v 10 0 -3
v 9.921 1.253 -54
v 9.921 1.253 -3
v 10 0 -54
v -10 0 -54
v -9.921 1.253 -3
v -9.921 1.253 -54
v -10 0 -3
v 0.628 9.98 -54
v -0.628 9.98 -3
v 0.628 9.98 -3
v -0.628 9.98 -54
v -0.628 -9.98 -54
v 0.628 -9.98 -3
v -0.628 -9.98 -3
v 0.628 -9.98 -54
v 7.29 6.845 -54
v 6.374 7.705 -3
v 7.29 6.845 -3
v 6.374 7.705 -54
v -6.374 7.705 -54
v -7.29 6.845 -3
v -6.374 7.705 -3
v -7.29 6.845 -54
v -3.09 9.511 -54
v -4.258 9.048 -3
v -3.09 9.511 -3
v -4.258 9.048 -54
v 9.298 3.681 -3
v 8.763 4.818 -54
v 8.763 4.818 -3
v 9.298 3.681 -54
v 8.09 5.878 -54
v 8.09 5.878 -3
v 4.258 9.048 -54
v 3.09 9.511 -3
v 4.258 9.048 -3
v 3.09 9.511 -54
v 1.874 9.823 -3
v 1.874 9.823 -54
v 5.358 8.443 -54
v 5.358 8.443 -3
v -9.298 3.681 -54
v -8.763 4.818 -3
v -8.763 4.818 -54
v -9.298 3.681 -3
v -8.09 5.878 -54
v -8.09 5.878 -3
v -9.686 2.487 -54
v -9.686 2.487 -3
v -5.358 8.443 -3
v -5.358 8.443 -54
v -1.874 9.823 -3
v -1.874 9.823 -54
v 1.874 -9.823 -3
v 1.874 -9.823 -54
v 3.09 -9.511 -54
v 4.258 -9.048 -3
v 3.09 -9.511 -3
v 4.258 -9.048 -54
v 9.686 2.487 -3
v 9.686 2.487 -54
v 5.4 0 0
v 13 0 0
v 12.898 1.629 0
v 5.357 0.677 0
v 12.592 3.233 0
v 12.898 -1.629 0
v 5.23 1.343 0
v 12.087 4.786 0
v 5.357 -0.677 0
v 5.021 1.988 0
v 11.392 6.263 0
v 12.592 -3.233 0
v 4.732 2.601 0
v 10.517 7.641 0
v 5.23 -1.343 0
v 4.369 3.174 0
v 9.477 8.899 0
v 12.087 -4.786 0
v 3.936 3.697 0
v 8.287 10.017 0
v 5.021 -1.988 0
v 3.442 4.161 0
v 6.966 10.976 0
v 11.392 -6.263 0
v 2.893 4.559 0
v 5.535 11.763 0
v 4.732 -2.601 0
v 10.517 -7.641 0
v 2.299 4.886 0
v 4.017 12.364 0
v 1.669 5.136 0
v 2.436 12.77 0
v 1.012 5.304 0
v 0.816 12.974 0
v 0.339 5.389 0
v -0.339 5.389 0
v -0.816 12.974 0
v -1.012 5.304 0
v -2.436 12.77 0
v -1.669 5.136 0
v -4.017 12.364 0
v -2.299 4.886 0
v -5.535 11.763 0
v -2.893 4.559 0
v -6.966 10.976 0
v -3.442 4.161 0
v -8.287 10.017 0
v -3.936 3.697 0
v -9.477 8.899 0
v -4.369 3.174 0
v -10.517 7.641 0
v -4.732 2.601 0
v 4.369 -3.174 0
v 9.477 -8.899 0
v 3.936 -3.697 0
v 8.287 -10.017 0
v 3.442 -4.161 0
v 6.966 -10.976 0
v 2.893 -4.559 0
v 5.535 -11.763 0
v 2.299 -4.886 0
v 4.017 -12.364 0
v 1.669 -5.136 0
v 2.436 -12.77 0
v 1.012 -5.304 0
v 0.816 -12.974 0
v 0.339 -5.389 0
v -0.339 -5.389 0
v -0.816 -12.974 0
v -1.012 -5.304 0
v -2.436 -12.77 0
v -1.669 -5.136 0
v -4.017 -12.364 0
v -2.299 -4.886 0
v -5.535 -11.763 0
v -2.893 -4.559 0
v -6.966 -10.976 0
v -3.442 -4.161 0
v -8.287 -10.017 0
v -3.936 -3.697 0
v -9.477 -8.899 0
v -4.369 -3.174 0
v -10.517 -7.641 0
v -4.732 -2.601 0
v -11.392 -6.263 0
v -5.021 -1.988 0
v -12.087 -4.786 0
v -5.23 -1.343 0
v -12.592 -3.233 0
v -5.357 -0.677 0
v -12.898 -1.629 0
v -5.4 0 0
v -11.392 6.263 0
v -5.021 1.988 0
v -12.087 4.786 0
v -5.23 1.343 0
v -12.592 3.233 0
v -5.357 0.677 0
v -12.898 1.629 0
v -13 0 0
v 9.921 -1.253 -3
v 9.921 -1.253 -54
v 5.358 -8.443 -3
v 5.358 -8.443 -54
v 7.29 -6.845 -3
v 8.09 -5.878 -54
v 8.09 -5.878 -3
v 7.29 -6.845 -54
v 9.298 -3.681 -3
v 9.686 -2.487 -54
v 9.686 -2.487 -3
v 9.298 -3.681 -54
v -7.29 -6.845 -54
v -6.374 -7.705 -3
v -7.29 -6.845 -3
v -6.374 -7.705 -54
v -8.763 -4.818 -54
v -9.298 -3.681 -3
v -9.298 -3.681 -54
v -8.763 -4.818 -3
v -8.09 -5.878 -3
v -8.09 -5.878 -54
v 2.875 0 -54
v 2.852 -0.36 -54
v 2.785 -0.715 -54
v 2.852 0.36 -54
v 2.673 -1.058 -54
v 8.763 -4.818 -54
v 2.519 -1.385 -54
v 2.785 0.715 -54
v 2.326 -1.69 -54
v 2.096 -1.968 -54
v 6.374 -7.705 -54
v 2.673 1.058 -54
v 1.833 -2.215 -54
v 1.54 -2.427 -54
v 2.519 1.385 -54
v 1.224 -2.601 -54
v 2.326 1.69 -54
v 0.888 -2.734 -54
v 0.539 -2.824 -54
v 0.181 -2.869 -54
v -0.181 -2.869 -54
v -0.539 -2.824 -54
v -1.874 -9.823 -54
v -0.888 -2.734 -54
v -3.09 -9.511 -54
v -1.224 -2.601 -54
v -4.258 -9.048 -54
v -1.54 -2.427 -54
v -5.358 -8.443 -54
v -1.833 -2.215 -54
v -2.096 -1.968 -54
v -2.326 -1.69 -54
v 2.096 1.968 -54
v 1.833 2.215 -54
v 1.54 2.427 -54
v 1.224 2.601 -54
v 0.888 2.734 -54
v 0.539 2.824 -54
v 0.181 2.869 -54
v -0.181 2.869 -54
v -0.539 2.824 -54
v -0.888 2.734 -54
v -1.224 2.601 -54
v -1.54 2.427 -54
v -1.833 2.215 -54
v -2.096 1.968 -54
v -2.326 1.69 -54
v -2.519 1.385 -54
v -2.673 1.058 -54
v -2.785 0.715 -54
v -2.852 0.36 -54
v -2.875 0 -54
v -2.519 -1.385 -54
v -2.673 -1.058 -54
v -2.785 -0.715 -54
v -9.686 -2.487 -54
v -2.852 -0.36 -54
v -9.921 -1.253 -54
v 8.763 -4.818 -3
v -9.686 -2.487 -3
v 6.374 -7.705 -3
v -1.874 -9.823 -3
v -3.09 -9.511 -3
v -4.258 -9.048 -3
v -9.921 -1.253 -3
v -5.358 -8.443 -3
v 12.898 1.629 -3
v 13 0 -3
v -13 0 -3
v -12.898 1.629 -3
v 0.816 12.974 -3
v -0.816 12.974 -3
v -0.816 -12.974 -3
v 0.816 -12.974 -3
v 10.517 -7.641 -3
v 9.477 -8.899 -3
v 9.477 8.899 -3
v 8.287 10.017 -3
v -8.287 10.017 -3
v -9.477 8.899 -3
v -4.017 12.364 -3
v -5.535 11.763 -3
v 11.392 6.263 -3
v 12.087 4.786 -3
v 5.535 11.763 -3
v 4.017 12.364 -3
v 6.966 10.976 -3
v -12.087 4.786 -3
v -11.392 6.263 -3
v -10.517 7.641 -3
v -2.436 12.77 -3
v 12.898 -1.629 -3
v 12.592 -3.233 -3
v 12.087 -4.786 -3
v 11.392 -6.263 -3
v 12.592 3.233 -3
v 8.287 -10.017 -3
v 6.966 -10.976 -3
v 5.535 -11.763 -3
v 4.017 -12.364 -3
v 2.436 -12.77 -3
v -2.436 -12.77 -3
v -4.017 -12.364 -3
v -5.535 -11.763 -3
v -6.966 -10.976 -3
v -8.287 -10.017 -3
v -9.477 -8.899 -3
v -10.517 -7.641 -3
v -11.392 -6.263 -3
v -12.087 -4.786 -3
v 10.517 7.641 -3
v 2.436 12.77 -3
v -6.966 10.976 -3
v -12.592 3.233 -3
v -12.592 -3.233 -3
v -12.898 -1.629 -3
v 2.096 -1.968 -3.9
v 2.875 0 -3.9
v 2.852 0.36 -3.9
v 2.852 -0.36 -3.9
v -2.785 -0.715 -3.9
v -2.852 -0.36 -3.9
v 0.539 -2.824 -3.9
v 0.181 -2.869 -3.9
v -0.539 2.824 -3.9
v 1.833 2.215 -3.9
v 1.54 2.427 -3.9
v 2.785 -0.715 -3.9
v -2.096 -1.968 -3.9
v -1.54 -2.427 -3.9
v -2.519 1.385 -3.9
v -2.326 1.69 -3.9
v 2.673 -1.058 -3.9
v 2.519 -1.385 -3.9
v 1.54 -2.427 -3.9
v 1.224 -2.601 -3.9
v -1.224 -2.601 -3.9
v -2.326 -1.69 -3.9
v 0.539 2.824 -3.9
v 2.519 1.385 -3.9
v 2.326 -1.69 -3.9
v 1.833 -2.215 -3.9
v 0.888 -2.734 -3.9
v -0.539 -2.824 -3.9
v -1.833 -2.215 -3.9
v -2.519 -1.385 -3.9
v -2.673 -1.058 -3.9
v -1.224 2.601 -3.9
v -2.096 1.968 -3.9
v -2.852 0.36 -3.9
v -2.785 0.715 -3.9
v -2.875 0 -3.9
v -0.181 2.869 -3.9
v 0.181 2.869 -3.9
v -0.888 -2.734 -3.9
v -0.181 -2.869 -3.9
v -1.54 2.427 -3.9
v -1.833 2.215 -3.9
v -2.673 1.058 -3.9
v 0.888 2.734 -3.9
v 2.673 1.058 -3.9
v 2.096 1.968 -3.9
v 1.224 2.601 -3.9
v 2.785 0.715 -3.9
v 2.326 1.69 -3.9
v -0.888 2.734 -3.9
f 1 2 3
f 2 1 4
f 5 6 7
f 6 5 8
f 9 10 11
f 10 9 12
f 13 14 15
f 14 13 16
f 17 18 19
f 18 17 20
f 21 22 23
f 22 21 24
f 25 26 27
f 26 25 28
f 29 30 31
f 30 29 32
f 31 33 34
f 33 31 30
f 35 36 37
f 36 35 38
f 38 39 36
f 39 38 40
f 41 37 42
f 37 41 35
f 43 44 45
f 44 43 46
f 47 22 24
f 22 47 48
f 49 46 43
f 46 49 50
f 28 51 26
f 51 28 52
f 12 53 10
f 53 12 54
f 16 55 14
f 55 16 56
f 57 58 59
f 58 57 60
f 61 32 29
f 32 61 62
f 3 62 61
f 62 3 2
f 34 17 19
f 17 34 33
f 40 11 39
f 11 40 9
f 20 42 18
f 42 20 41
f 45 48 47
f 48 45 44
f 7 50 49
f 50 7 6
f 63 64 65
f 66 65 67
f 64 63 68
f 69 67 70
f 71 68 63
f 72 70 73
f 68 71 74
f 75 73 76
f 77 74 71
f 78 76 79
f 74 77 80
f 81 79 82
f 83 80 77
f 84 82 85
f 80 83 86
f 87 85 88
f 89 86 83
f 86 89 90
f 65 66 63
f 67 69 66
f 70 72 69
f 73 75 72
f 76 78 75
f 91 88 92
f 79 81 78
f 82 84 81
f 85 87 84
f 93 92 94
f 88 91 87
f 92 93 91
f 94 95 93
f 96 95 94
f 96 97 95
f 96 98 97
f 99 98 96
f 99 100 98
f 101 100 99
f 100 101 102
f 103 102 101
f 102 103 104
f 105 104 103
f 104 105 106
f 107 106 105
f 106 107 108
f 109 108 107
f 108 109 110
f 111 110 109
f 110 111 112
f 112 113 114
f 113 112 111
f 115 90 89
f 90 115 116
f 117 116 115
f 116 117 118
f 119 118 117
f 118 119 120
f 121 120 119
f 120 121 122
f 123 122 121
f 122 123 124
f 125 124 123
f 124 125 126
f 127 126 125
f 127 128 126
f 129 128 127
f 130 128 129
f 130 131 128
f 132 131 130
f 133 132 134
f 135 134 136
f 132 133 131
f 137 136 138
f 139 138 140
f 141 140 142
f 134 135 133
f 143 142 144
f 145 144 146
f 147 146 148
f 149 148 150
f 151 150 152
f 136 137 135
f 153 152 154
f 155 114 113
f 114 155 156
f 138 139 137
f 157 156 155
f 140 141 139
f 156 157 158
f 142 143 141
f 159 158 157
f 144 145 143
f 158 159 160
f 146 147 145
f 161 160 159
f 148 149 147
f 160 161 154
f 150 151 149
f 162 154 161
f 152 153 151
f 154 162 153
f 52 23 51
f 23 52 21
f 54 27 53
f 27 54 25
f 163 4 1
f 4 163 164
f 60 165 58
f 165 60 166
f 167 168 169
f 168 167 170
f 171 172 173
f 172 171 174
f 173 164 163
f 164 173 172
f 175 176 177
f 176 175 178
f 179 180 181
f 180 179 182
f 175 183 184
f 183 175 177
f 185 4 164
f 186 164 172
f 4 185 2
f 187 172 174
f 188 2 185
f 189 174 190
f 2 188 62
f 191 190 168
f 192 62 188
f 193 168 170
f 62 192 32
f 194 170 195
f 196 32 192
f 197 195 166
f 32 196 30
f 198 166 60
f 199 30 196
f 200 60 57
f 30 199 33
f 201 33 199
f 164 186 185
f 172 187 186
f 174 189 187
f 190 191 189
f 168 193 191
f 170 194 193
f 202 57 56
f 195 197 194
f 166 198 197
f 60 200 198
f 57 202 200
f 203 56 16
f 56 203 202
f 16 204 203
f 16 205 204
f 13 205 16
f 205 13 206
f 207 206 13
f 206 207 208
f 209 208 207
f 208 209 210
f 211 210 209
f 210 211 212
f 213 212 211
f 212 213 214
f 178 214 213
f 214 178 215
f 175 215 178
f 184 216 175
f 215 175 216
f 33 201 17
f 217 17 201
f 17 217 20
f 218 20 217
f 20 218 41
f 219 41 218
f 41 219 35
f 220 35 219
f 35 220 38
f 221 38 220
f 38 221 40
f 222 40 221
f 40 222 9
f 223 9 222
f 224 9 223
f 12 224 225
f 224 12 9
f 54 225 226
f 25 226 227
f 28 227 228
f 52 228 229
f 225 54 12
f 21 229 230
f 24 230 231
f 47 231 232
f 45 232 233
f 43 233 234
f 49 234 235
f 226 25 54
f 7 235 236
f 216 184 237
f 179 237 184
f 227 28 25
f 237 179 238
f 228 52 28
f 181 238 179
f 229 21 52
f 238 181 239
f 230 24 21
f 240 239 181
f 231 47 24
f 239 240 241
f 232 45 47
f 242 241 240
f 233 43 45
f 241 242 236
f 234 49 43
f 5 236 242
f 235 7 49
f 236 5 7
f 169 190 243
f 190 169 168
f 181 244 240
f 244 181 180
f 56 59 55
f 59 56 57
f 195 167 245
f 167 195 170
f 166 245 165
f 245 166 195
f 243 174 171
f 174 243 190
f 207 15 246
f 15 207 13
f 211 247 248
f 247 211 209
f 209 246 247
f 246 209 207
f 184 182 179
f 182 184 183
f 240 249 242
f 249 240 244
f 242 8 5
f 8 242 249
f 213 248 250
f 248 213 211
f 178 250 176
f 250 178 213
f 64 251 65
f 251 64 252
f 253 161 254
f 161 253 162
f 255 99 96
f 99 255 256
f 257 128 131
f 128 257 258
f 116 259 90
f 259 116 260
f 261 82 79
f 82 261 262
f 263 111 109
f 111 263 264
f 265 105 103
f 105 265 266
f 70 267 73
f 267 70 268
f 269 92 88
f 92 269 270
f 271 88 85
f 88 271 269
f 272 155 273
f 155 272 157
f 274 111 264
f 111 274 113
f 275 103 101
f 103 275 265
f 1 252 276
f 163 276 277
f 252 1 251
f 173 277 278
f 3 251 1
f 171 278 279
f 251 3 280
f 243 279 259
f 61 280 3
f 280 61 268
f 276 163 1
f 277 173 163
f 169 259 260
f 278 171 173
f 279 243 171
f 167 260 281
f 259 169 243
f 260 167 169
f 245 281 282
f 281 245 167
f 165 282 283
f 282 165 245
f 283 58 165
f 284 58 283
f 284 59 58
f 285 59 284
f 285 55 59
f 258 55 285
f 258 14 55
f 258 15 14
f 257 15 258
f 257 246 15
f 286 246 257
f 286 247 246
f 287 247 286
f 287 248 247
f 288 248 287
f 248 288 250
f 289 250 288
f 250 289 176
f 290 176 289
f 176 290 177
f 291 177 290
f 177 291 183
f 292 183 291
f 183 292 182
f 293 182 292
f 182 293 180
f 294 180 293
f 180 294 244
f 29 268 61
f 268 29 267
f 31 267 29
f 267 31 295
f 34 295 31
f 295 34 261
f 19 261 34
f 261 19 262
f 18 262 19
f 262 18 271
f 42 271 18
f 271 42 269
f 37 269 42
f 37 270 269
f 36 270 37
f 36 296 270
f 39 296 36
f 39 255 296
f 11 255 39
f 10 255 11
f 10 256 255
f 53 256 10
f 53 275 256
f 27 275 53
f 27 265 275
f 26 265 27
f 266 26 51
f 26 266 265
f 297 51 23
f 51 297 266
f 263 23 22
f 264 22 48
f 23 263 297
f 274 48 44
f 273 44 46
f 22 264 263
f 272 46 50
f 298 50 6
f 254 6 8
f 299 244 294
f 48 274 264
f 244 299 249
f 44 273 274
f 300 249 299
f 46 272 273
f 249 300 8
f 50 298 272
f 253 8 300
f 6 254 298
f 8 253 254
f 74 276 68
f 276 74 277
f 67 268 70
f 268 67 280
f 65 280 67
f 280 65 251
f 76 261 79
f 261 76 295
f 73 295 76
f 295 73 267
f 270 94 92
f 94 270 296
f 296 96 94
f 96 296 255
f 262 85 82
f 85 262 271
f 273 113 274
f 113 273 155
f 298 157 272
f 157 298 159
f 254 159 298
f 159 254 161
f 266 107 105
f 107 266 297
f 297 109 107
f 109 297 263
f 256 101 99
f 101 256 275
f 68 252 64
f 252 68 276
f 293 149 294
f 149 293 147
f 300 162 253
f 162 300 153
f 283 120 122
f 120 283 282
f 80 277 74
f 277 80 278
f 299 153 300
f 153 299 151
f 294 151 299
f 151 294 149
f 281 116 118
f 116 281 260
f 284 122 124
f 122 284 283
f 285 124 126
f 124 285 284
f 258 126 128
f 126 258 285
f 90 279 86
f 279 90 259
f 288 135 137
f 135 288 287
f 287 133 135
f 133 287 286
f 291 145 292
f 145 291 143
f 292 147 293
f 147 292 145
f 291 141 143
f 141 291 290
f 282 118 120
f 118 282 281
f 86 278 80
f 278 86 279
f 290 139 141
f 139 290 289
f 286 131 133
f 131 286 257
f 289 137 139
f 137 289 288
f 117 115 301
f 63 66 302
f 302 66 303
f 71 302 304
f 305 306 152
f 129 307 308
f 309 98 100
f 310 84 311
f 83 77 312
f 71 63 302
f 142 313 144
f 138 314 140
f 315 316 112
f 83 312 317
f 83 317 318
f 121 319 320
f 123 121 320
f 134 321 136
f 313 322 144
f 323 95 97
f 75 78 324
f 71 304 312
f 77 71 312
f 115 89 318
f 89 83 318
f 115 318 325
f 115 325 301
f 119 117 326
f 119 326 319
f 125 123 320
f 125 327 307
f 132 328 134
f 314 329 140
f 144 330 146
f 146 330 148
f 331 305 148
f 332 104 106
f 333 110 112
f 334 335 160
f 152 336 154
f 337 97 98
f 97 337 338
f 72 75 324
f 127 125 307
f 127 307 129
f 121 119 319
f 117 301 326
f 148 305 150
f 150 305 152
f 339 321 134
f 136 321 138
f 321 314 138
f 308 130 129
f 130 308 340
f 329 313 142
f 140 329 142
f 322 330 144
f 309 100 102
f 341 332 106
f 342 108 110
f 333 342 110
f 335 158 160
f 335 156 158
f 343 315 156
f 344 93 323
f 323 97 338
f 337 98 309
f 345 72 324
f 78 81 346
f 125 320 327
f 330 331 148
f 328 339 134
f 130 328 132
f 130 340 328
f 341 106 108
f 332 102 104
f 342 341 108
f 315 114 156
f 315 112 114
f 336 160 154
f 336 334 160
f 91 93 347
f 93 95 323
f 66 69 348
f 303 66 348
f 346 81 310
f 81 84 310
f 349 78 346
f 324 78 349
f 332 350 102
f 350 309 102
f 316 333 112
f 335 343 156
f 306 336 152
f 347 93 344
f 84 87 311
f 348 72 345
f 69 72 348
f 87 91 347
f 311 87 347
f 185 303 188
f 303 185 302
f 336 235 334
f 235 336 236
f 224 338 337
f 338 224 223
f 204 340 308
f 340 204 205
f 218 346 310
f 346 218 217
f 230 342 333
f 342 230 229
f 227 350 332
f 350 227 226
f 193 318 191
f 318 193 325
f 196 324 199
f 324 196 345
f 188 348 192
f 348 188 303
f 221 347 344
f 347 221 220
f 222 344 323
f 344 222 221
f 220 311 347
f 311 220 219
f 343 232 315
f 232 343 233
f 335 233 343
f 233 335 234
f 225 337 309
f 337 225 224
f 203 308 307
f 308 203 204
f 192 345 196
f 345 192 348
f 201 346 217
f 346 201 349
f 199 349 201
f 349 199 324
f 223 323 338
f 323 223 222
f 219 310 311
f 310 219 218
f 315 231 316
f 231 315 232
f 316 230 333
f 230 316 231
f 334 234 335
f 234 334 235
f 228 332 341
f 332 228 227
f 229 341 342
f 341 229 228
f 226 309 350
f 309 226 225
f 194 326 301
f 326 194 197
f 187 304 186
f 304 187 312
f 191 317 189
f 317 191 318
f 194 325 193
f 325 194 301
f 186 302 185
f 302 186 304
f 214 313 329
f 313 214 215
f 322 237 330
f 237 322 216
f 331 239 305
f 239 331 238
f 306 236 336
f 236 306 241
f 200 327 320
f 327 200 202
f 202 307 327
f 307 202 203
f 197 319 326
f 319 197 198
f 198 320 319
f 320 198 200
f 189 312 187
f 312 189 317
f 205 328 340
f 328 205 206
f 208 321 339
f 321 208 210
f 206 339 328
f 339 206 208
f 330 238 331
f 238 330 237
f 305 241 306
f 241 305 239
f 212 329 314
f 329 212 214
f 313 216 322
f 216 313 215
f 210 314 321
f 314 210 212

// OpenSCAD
$fn = 50;


difference() {
	union() {
		translate(v = [0, 0, -54.0000000000]) {
			cylinder(h = 54, r = 10.0000000000);
		}
		translate(v = [0, 0, -3.0000000000]) {
			cylinder(h = 3, r = 13.0000000000);
		}
	}
	union() {
		translate(v = [0, 0, 0]) {
			rotate(a = [0, 0, 0]) {
				difference() {
					union() {
						#translate(v = [0, 0, -54.0000000000]) {
							cylinder(h = 54, r = 2.6000000000);
						}
						#translate(v = [0, 0, -3.9000000000]) {
							cylinder(h = 3.9000000000, r = 10.0000000000, r1 = 2.8750000000, r2 = 5.4000000000);
						}
						#translate(v = [0, 0, -54.0000000000]) {
							cylinder(h = 54, r = 2.8750000000);
						}
						#translate(v = [0, 0, -54.0000000000]) {
							cylinder(h = 54, r = 2.6000000000);
						}
					}
					union();
				}
			}
		}
	}
}
